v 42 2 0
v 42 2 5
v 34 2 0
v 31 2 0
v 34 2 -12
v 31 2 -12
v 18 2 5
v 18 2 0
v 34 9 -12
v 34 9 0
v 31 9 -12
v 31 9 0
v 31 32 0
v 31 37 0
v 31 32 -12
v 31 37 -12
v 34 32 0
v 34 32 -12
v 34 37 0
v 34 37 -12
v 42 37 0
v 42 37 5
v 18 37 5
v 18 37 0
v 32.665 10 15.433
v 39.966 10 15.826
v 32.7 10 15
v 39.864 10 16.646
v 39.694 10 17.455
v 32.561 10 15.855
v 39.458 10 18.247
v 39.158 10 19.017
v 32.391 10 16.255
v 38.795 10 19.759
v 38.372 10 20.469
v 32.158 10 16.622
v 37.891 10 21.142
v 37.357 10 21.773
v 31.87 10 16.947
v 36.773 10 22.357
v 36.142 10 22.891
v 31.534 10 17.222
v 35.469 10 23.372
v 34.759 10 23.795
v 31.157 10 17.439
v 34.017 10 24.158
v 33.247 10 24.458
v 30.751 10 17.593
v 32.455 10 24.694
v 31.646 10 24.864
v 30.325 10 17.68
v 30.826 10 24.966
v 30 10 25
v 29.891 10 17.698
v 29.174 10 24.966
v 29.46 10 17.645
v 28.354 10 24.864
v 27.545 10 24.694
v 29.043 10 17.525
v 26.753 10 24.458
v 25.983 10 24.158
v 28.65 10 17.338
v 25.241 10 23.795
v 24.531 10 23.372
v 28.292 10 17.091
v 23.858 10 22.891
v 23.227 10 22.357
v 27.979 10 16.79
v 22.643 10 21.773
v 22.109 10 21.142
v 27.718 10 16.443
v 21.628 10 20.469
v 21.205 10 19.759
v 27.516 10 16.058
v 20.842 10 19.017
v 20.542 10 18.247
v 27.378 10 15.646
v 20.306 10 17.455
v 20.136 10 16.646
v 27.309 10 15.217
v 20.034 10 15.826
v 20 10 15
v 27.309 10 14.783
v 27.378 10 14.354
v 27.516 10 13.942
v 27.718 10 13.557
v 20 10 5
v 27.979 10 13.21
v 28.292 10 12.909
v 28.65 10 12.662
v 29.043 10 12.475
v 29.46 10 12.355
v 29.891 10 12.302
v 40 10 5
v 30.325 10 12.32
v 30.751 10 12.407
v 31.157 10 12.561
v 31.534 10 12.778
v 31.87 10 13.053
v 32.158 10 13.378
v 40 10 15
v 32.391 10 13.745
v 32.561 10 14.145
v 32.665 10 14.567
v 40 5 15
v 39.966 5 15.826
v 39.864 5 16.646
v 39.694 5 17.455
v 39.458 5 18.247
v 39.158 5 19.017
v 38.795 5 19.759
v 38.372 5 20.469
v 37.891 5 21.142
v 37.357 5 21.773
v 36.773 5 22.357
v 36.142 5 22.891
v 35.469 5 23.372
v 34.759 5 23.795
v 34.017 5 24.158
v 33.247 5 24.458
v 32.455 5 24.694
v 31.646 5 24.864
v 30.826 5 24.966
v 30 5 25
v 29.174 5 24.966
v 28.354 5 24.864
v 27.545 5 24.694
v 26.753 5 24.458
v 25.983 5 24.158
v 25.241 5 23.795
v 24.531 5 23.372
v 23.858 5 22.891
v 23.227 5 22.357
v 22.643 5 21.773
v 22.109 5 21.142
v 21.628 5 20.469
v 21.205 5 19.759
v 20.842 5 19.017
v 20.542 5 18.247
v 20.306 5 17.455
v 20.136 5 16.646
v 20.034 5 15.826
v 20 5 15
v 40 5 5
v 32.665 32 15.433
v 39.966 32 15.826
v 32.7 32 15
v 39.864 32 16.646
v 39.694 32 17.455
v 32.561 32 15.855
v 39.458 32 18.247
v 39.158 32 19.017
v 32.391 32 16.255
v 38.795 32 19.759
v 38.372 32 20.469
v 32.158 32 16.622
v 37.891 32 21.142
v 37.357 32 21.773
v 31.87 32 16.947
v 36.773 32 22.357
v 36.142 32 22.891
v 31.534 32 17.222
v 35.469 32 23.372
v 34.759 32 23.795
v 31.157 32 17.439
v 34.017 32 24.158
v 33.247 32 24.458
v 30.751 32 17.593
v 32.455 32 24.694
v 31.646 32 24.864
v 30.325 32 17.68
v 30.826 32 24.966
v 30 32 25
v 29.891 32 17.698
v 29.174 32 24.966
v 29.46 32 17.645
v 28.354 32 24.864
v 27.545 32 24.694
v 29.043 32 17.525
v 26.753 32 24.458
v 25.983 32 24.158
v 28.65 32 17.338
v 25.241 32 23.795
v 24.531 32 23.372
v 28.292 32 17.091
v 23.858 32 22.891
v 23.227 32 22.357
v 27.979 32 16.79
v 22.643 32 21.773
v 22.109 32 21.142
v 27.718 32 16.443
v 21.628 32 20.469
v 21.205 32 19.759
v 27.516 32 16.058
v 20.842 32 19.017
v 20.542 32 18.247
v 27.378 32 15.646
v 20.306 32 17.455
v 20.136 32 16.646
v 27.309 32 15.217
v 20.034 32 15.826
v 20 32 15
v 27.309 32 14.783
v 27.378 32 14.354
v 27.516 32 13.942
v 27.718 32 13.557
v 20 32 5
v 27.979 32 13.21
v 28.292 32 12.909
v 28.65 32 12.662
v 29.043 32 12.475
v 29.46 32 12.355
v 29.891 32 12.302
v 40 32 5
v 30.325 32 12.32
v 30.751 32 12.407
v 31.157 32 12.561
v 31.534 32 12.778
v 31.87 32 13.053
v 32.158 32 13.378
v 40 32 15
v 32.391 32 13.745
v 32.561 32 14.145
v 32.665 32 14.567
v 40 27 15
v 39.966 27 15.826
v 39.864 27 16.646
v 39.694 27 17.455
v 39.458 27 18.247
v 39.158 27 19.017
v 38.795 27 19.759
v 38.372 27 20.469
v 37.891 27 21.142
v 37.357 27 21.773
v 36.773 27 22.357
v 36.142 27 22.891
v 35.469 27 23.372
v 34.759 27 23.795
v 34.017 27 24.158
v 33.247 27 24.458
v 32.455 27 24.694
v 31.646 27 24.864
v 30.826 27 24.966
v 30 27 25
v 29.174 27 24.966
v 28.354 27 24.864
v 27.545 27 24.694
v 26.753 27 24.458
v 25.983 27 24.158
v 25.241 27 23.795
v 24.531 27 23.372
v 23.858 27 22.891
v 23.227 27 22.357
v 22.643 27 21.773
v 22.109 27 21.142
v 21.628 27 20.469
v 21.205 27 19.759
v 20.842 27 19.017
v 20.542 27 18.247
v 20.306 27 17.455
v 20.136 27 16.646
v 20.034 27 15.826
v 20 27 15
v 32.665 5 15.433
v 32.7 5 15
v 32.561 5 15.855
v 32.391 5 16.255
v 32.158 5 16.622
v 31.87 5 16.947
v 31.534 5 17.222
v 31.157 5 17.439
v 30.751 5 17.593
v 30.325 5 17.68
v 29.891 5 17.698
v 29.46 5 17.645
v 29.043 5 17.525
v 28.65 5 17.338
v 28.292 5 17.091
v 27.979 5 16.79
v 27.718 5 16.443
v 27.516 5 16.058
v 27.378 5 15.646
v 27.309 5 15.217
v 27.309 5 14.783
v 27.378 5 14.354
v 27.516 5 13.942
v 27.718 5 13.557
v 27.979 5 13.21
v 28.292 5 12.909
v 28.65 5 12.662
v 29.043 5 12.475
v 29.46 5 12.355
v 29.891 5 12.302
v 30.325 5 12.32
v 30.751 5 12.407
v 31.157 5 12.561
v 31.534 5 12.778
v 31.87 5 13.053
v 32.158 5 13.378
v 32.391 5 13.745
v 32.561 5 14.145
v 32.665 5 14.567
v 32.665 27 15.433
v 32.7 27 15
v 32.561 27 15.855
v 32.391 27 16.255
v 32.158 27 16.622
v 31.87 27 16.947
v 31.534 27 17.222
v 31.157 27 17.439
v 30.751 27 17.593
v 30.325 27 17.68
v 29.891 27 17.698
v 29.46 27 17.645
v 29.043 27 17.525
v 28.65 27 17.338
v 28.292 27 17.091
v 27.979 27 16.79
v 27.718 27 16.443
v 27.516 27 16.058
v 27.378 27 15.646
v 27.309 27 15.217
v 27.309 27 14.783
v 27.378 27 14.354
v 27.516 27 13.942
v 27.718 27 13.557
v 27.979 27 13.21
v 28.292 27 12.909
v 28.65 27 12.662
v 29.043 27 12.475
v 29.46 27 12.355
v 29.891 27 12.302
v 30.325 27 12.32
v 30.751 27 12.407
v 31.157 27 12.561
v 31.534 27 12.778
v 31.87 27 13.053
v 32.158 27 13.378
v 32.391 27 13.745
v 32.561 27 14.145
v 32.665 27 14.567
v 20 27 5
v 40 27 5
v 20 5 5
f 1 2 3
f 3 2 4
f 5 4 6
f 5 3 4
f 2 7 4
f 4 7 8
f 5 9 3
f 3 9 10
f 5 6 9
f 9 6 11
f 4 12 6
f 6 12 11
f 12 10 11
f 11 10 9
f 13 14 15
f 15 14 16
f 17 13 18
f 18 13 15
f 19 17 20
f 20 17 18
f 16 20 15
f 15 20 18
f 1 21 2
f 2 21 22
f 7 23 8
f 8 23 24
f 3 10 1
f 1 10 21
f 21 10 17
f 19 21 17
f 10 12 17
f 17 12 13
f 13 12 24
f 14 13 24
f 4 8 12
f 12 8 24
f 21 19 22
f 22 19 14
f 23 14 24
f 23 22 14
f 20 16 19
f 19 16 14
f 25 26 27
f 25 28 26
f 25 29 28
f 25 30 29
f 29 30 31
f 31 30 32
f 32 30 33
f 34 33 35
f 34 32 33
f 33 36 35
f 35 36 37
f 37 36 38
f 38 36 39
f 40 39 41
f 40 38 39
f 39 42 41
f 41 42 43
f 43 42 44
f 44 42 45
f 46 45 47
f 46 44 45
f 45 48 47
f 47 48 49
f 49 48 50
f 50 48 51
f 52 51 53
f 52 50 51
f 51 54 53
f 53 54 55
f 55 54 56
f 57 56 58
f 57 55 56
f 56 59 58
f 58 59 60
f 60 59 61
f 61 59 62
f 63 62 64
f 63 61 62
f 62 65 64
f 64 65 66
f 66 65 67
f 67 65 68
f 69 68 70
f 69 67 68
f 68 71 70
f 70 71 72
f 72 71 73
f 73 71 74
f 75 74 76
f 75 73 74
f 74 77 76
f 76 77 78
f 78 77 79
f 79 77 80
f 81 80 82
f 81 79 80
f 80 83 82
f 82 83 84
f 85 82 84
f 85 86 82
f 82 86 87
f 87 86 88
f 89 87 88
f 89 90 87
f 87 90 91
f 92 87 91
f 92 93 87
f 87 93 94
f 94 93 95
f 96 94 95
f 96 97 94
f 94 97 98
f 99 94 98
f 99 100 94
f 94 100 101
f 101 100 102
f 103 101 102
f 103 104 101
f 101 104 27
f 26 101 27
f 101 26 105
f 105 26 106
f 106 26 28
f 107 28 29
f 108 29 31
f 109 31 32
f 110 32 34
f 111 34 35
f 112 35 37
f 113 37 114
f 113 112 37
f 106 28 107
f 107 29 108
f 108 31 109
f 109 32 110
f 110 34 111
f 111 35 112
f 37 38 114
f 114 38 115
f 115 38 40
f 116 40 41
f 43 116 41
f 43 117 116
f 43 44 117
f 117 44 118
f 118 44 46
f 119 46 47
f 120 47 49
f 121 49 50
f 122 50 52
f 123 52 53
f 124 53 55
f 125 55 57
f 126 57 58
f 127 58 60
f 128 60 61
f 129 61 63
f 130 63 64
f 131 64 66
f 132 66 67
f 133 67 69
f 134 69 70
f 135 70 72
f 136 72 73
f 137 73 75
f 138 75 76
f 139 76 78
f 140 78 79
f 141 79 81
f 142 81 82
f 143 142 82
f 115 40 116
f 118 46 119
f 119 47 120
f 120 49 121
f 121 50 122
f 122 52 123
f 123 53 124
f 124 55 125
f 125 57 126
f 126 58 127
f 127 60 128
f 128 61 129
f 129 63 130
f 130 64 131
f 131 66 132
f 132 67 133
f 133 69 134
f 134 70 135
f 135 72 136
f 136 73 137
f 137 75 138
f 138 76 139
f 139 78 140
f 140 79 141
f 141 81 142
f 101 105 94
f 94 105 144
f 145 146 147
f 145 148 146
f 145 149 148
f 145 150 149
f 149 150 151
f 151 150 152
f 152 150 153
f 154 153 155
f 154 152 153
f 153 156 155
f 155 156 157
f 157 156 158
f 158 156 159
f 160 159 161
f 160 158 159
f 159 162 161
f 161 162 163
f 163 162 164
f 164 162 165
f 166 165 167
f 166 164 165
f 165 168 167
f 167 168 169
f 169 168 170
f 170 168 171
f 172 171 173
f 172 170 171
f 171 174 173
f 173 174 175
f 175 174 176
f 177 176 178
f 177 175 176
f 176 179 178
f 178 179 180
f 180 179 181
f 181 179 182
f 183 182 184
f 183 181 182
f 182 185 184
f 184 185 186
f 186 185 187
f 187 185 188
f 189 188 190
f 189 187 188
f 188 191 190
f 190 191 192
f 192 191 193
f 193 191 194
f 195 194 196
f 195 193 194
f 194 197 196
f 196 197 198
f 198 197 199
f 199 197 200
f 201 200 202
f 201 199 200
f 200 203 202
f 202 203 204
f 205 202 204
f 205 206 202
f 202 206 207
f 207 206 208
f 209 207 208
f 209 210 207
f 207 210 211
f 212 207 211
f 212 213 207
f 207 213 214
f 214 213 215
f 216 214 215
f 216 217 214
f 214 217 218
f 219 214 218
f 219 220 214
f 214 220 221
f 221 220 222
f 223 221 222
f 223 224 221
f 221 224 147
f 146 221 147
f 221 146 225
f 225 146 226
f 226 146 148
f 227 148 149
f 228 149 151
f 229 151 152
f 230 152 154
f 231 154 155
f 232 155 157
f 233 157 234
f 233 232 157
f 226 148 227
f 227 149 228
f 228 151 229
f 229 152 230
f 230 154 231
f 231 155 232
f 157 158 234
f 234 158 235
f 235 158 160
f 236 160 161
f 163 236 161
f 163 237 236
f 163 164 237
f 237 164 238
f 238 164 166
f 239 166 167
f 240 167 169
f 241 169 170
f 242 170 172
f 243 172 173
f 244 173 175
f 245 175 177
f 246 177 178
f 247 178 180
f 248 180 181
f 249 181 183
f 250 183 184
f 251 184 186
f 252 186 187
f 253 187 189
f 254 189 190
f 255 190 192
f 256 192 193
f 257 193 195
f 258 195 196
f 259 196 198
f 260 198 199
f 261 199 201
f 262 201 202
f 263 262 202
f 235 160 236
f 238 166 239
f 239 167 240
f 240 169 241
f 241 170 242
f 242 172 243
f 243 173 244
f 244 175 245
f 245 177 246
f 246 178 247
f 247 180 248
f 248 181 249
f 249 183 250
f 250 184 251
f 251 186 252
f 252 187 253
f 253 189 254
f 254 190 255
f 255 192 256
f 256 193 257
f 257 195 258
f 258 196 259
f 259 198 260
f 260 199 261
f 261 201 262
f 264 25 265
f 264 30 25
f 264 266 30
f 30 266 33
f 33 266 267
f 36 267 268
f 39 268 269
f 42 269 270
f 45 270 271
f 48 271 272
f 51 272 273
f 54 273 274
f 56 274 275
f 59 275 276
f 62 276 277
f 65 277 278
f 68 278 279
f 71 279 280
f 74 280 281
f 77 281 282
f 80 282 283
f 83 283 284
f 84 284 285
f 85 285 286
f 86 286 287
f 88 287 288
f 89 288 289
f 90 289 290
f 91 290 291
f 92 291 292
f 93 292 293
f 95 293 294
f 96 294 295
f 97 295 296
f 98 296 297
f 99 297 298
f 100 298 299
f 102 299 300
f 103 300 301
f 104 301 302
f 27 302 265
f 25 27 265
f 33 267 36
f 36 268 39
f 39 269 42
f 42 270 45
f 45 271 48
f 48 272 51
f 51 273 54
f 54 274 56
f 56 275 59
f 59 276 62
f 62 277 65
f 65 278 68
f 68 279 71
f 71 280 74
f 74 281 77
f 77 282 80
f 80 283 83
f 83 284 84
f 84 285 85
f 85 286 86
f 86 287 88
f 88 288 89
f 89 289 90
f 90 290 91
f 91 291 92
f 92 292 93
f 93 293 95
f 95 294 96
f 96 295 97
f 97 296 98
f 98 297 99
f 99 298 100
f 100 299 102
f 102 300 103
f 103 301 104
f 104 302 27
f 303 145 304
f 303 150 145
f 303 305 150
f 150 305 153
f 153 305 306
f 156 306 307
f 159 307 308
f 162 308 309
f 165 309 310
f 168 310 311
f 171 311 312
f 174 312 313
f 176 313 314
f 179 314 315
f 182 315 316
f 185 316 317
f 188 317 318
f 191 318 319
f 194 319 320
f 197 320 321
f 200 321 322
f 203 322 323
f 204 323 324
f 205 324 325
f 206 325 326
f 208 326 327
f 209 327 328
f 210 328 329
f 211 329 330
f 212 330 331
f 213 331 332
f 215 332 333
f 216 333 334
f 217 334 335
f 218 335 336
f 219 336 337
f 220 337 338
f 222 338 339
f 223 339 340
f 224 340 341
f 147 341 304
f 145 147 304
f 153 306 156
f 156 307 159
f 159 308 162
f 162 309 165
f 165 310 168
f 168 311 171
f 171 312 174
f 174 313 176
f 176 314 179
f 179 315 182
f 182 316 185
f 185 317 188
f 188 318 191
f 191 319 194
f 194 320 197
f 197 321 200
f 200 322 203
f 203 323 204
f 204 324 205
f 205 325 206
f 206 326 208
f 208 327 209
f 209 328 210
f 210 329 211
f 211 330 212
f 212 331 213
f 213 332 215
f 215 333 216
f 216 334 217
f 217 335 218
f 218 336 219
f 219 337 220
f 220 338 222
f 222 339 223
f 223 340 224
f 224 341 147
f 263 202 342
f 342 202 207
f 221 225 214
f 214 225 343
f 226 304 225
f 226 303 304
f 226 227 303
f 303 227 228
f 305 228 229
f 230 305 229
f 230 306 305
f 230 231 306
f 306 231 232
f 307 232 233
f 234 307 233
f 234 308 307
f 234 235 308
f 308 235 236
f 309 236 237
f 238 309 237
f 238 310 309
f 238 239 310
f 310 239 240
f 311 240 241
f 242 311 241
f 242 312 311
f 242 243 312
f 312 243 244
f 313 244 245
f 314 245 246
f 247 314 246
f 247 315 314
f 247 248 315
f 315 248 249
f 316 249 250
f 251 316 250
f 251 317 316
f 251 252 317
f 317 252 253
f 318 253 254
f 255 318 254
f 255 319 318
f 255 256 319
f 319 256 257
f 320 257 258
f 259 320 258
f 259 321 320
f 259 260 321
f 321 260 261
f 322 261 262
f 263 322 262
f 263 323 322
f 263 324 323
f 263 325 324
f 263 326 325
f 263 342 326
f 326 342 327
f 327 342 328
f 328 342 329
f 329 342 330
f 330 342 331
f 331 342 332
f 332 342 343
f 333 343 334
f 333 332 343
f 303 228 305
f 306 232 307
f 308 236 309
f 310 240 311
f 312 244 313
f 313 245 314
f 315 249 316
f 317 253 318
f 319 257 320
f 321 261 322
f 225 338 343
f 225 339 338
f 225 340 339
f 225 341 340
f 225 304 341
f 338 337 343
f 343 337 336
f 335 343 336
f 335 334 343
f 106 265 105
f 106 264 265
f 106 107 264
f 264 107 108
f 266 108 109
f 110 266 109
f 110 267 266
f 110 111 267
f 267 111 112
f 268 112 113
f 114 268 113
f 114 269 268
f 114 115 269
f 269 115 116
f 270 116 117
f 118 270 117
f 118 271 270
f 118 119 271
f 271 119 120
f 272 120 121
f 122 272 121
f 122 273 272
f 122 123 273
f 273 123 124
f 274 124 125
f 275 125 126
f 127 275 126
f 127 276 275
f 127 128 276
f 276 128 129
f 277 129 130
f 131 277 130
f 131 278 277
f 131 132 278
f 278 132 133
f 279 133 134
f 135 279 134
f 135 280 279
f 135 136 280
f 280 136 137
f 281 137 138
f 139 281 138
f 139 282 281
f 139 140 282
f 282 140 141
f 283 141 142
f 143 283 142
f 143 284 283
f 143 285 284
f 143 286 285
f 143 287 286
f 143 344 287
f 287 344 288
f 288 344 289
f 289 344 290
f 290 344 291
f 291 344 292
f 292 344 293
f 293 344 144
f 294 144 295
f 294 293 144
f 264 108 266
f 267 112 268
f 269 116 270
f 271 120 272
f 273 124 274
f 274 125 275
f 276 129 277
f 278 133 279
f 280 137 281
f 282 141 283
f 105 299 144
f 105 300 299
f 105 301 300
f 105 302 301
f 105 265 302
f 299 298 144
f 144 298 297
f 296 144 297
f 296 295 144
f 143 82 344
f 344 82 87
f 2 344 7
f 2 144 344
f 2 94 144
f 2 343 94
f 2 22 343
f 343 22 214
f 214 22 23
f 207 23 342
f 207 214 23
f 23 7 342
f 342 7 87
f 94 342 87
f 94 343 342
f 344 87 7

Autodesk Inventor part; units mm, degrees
ref_plane "YZ Plane" through (0, 0, 0) normal (1, 0, 0) x (0, 1, 0)
ref_plane "XZ Plane" through (0, 0, 0) normal (0, 1, 0) x (-1, 0, 0)
ref_plane "XY Plane" through (0, 0, 0) normal (0, 0, 1) x (1, 0, 0)
sketch "Sketch1" plane through (0, 0, 0) normal (0, 0, 1) x (1, 0, 0)
  line L0 (0, 0) -> (60, 0)
  line L1 (60, 0) -> (60, 37)
  line L2 (60, 37) -> (0, 37)
  line L3 (0, 37) -> (0, 0)
  dimension "d0" = 60
  dimension "d1" = 37
extrude "Extrusion1" add sketch "Sketch1" along normal blind 5
sketch "Sketch2" plane through (0, 0, 5) normal (0, 0, 1) x (1, 0, 0)
  line L0 (20, 27) -> (40, 27)
  line L1 (40, 27) -> (40, 32)
  line L2 (40, 32) -> (20, 32)
  line L3 (20, 32) -> (20, 27)
  line L4 (20, 10) -> (40, 10)
  line L5 (40, 10) -> (40, 5)
  line L6 (40, 5) -> (20, 5)
  line L7 (20, 5) -> (20, 10)
  point P0 (0, 0)
  dimension "d6" = 20
  dimension "d7" = 5
  dimension "d8" = 20
  dimension "d9" = 5
extrude "Extrusion2" add sketch "Sketch2" along normal blind 20
sketch "Sketch3" plane through (20, 32, 5) normal (0, 1, 0) x (1, 0, 0)
  circle A0 centre (10, -10) radius 2.7
  point P0 (-20, 5)
  dimension "d12" = 5.4
extrude "Extrusion3" cut sketch "Sketch3" against normal blind 20
sketch "Sketch4" plane through (20, 10, 5) normal (0, 1, 0) x (1, 0, 0)
  circle A0 centre (10, -10) radius 2.7
  point P0 (-20, 5)
  dimension "d15" = 5.4
extrude "Extrusion4" cut sketch "Sketch4" against normal blind 20
fillet "Fillet1" radius 10 1 edges at (40, 29.5, 25)
fillet "Fillet2" radius 10 1 edges at (20, 29.5, 25)
fillet "Fillet3" radius 10 1 edges at (40, 7.5, 25)
fillet "Fillet4" radius 10 1 edges at (20, 7.5, 25)
sketch "Sketch5" plane through (0, 0, 5) normal (0, 0, 1) x (1, 0, 0)
  circle A0 centre (10, 10) radius 2.5
  circle A1 centre (50, 10) radius 2.5
  circle A2 centre (10, 27) radius 2.5
  circle A3 centre (50, 27) radius 2.5
  point P0 (0, 0)
  dimension "d22" = 5
  dimension "d23" = 5
  dimension "d24" = 5
  dimension "d25" = 5
extrude "Extrusion5" cut sketch "Sketch5" against normal blind 20
fillet "Fillet5" radius 10 1 edges at (0, 37, 2.5)
fillet "Fillet6" radius 10 1 edges at (60, 37, 2.5)
fillet "Fillet7" radius 10 1 edges at (60, 0, 2.5)
fillet "Fillet8" radius 10 1 edges at (0, 0, 2.5)
sketch "Sketch6" plane through (0, 0, 0) normal (0, 0, -1) x (-1, 0, 0)
  point P0 (0, 0)
sketch "Sketch7" plane through (0, 0, 5) normal (0, 0, 1) x (1, 0, 0)
  line L0 (10, 0) -> (50, 0) projected
  line L1 (50, 37) -> (10, 37) projected
  line L2 (18, 0) -> (42, 0)
  line L3 (42, 0) -> (42, 37)
  line L4 (42, 37) -> (18, 37)
  line L5 (18, 37) -> (18, 0)
  line L6 (18, 0) -> (0, 0)
  line L7 (0, 0) -> (0, 37)
  line L8 (0, 37) -> (18, 37)
  line L9 (18, 37) -> (18, 0)
  line L10 (42, 0) -> (60, 0)
  line L11 (60, 0) -> (60, 37)
  line L12 (60, 37) -> (42, 37)
  line L13 (42, 37) -> (42, 0)
  dimension "d32" = 24
extrude "Extrusion6" cut sketch "Sketch7" against normal blind 10 contours L6 L7 L8 L1 L5 L0 | L3 L1 L12 L11 L10 L0
sketch "Sketch8" plane through (0, 0, 0) normal (0, 0, -1) x (-1, 0, 0)
  point P0 (0, 0)
sketch "Sketch9" plane through (0, 0, 0) normal (0, 0, -1) x (-1, 0, 0)
  line L0 (-18, 0) -> (-42, 0) projected
  line L1 (-34, 0) -> (-31, 0)
  line L2 (-31, 0) -> (-31, 9)
  line L3 (-31, 9) -> (-34, 9)
  line L4 (-34, 9) -> (-34, 0)
  line L5 (-18, 0) -> (-18, 37) projected
  point P0 (0, 0)
  point P1 (-23, 0)
  point P2 (-37, 0)
  point P3 (-18, 5)
  point P4 (-18, 32)
  dimension "d36" = 3
  dimension "d37" = 9
  dimension "d38" = 16
sketch "Sketch10" plane through (0, 0, 0) normal (0, 0, -1) x (-1, 0, 0)
  line L0 (-42, 37) -> (-18, 37) projected
  line L1 (-34, 37) -> (-31, 37)
  line L2 (-31, 37) -> (-31, 32)
  line L3 (-31, 32) -> (-34, 32)
  line L4 (-34, 32) -> (-34, 37)
  line L5 (-18, 0) -> (-18, 37) projected
  point P0 (0, 0)
  dimension "d39" = 3
  dimension "d40" = 5
  dimension "d41" = 16
sketch "Sketch11" plane through (0, 0, 0) normal (0, 0, -1) x (-1, 0, 0)
  point P0 (0, 0)
sketch "Sketch12" plane through (0, 0, 5) normal (0, 0, 1) x (1, 0, 0)
  point P0 (0, 0)
sketch "Sketch13" plane through (0, 0, 5) normal (0, 0, 1) x (1, 0, 0)
  point P0 (0, 0)
sketch "Sketch14" plane through (0, 0, 5) normal (0, 0, 1) x (1, 0, 0)
  line L0 (42, 0) -> (42, 37) projected
  line L1 (18, 0) -> (18, 37) projected
  line L2 (42, 0) -> (18, 0)
  line L3 (18, 0) -> (18, 2)
  line L4 (18, 2) -> (42, 2)
  line L5 (42, 2) -> (42, 0)
  point P0 (0, 0)
  dimension "d42" = 2
extrude "Extrusion7" add sketch "Sketch10" along normal blind 12
extrude "Extrusion8" add sketch "Sketch9" along normal blind 12
extrude "Extrusion9" cut sketch "Sketch14" against normal blind 22
properties part number "sail_hold_1"
